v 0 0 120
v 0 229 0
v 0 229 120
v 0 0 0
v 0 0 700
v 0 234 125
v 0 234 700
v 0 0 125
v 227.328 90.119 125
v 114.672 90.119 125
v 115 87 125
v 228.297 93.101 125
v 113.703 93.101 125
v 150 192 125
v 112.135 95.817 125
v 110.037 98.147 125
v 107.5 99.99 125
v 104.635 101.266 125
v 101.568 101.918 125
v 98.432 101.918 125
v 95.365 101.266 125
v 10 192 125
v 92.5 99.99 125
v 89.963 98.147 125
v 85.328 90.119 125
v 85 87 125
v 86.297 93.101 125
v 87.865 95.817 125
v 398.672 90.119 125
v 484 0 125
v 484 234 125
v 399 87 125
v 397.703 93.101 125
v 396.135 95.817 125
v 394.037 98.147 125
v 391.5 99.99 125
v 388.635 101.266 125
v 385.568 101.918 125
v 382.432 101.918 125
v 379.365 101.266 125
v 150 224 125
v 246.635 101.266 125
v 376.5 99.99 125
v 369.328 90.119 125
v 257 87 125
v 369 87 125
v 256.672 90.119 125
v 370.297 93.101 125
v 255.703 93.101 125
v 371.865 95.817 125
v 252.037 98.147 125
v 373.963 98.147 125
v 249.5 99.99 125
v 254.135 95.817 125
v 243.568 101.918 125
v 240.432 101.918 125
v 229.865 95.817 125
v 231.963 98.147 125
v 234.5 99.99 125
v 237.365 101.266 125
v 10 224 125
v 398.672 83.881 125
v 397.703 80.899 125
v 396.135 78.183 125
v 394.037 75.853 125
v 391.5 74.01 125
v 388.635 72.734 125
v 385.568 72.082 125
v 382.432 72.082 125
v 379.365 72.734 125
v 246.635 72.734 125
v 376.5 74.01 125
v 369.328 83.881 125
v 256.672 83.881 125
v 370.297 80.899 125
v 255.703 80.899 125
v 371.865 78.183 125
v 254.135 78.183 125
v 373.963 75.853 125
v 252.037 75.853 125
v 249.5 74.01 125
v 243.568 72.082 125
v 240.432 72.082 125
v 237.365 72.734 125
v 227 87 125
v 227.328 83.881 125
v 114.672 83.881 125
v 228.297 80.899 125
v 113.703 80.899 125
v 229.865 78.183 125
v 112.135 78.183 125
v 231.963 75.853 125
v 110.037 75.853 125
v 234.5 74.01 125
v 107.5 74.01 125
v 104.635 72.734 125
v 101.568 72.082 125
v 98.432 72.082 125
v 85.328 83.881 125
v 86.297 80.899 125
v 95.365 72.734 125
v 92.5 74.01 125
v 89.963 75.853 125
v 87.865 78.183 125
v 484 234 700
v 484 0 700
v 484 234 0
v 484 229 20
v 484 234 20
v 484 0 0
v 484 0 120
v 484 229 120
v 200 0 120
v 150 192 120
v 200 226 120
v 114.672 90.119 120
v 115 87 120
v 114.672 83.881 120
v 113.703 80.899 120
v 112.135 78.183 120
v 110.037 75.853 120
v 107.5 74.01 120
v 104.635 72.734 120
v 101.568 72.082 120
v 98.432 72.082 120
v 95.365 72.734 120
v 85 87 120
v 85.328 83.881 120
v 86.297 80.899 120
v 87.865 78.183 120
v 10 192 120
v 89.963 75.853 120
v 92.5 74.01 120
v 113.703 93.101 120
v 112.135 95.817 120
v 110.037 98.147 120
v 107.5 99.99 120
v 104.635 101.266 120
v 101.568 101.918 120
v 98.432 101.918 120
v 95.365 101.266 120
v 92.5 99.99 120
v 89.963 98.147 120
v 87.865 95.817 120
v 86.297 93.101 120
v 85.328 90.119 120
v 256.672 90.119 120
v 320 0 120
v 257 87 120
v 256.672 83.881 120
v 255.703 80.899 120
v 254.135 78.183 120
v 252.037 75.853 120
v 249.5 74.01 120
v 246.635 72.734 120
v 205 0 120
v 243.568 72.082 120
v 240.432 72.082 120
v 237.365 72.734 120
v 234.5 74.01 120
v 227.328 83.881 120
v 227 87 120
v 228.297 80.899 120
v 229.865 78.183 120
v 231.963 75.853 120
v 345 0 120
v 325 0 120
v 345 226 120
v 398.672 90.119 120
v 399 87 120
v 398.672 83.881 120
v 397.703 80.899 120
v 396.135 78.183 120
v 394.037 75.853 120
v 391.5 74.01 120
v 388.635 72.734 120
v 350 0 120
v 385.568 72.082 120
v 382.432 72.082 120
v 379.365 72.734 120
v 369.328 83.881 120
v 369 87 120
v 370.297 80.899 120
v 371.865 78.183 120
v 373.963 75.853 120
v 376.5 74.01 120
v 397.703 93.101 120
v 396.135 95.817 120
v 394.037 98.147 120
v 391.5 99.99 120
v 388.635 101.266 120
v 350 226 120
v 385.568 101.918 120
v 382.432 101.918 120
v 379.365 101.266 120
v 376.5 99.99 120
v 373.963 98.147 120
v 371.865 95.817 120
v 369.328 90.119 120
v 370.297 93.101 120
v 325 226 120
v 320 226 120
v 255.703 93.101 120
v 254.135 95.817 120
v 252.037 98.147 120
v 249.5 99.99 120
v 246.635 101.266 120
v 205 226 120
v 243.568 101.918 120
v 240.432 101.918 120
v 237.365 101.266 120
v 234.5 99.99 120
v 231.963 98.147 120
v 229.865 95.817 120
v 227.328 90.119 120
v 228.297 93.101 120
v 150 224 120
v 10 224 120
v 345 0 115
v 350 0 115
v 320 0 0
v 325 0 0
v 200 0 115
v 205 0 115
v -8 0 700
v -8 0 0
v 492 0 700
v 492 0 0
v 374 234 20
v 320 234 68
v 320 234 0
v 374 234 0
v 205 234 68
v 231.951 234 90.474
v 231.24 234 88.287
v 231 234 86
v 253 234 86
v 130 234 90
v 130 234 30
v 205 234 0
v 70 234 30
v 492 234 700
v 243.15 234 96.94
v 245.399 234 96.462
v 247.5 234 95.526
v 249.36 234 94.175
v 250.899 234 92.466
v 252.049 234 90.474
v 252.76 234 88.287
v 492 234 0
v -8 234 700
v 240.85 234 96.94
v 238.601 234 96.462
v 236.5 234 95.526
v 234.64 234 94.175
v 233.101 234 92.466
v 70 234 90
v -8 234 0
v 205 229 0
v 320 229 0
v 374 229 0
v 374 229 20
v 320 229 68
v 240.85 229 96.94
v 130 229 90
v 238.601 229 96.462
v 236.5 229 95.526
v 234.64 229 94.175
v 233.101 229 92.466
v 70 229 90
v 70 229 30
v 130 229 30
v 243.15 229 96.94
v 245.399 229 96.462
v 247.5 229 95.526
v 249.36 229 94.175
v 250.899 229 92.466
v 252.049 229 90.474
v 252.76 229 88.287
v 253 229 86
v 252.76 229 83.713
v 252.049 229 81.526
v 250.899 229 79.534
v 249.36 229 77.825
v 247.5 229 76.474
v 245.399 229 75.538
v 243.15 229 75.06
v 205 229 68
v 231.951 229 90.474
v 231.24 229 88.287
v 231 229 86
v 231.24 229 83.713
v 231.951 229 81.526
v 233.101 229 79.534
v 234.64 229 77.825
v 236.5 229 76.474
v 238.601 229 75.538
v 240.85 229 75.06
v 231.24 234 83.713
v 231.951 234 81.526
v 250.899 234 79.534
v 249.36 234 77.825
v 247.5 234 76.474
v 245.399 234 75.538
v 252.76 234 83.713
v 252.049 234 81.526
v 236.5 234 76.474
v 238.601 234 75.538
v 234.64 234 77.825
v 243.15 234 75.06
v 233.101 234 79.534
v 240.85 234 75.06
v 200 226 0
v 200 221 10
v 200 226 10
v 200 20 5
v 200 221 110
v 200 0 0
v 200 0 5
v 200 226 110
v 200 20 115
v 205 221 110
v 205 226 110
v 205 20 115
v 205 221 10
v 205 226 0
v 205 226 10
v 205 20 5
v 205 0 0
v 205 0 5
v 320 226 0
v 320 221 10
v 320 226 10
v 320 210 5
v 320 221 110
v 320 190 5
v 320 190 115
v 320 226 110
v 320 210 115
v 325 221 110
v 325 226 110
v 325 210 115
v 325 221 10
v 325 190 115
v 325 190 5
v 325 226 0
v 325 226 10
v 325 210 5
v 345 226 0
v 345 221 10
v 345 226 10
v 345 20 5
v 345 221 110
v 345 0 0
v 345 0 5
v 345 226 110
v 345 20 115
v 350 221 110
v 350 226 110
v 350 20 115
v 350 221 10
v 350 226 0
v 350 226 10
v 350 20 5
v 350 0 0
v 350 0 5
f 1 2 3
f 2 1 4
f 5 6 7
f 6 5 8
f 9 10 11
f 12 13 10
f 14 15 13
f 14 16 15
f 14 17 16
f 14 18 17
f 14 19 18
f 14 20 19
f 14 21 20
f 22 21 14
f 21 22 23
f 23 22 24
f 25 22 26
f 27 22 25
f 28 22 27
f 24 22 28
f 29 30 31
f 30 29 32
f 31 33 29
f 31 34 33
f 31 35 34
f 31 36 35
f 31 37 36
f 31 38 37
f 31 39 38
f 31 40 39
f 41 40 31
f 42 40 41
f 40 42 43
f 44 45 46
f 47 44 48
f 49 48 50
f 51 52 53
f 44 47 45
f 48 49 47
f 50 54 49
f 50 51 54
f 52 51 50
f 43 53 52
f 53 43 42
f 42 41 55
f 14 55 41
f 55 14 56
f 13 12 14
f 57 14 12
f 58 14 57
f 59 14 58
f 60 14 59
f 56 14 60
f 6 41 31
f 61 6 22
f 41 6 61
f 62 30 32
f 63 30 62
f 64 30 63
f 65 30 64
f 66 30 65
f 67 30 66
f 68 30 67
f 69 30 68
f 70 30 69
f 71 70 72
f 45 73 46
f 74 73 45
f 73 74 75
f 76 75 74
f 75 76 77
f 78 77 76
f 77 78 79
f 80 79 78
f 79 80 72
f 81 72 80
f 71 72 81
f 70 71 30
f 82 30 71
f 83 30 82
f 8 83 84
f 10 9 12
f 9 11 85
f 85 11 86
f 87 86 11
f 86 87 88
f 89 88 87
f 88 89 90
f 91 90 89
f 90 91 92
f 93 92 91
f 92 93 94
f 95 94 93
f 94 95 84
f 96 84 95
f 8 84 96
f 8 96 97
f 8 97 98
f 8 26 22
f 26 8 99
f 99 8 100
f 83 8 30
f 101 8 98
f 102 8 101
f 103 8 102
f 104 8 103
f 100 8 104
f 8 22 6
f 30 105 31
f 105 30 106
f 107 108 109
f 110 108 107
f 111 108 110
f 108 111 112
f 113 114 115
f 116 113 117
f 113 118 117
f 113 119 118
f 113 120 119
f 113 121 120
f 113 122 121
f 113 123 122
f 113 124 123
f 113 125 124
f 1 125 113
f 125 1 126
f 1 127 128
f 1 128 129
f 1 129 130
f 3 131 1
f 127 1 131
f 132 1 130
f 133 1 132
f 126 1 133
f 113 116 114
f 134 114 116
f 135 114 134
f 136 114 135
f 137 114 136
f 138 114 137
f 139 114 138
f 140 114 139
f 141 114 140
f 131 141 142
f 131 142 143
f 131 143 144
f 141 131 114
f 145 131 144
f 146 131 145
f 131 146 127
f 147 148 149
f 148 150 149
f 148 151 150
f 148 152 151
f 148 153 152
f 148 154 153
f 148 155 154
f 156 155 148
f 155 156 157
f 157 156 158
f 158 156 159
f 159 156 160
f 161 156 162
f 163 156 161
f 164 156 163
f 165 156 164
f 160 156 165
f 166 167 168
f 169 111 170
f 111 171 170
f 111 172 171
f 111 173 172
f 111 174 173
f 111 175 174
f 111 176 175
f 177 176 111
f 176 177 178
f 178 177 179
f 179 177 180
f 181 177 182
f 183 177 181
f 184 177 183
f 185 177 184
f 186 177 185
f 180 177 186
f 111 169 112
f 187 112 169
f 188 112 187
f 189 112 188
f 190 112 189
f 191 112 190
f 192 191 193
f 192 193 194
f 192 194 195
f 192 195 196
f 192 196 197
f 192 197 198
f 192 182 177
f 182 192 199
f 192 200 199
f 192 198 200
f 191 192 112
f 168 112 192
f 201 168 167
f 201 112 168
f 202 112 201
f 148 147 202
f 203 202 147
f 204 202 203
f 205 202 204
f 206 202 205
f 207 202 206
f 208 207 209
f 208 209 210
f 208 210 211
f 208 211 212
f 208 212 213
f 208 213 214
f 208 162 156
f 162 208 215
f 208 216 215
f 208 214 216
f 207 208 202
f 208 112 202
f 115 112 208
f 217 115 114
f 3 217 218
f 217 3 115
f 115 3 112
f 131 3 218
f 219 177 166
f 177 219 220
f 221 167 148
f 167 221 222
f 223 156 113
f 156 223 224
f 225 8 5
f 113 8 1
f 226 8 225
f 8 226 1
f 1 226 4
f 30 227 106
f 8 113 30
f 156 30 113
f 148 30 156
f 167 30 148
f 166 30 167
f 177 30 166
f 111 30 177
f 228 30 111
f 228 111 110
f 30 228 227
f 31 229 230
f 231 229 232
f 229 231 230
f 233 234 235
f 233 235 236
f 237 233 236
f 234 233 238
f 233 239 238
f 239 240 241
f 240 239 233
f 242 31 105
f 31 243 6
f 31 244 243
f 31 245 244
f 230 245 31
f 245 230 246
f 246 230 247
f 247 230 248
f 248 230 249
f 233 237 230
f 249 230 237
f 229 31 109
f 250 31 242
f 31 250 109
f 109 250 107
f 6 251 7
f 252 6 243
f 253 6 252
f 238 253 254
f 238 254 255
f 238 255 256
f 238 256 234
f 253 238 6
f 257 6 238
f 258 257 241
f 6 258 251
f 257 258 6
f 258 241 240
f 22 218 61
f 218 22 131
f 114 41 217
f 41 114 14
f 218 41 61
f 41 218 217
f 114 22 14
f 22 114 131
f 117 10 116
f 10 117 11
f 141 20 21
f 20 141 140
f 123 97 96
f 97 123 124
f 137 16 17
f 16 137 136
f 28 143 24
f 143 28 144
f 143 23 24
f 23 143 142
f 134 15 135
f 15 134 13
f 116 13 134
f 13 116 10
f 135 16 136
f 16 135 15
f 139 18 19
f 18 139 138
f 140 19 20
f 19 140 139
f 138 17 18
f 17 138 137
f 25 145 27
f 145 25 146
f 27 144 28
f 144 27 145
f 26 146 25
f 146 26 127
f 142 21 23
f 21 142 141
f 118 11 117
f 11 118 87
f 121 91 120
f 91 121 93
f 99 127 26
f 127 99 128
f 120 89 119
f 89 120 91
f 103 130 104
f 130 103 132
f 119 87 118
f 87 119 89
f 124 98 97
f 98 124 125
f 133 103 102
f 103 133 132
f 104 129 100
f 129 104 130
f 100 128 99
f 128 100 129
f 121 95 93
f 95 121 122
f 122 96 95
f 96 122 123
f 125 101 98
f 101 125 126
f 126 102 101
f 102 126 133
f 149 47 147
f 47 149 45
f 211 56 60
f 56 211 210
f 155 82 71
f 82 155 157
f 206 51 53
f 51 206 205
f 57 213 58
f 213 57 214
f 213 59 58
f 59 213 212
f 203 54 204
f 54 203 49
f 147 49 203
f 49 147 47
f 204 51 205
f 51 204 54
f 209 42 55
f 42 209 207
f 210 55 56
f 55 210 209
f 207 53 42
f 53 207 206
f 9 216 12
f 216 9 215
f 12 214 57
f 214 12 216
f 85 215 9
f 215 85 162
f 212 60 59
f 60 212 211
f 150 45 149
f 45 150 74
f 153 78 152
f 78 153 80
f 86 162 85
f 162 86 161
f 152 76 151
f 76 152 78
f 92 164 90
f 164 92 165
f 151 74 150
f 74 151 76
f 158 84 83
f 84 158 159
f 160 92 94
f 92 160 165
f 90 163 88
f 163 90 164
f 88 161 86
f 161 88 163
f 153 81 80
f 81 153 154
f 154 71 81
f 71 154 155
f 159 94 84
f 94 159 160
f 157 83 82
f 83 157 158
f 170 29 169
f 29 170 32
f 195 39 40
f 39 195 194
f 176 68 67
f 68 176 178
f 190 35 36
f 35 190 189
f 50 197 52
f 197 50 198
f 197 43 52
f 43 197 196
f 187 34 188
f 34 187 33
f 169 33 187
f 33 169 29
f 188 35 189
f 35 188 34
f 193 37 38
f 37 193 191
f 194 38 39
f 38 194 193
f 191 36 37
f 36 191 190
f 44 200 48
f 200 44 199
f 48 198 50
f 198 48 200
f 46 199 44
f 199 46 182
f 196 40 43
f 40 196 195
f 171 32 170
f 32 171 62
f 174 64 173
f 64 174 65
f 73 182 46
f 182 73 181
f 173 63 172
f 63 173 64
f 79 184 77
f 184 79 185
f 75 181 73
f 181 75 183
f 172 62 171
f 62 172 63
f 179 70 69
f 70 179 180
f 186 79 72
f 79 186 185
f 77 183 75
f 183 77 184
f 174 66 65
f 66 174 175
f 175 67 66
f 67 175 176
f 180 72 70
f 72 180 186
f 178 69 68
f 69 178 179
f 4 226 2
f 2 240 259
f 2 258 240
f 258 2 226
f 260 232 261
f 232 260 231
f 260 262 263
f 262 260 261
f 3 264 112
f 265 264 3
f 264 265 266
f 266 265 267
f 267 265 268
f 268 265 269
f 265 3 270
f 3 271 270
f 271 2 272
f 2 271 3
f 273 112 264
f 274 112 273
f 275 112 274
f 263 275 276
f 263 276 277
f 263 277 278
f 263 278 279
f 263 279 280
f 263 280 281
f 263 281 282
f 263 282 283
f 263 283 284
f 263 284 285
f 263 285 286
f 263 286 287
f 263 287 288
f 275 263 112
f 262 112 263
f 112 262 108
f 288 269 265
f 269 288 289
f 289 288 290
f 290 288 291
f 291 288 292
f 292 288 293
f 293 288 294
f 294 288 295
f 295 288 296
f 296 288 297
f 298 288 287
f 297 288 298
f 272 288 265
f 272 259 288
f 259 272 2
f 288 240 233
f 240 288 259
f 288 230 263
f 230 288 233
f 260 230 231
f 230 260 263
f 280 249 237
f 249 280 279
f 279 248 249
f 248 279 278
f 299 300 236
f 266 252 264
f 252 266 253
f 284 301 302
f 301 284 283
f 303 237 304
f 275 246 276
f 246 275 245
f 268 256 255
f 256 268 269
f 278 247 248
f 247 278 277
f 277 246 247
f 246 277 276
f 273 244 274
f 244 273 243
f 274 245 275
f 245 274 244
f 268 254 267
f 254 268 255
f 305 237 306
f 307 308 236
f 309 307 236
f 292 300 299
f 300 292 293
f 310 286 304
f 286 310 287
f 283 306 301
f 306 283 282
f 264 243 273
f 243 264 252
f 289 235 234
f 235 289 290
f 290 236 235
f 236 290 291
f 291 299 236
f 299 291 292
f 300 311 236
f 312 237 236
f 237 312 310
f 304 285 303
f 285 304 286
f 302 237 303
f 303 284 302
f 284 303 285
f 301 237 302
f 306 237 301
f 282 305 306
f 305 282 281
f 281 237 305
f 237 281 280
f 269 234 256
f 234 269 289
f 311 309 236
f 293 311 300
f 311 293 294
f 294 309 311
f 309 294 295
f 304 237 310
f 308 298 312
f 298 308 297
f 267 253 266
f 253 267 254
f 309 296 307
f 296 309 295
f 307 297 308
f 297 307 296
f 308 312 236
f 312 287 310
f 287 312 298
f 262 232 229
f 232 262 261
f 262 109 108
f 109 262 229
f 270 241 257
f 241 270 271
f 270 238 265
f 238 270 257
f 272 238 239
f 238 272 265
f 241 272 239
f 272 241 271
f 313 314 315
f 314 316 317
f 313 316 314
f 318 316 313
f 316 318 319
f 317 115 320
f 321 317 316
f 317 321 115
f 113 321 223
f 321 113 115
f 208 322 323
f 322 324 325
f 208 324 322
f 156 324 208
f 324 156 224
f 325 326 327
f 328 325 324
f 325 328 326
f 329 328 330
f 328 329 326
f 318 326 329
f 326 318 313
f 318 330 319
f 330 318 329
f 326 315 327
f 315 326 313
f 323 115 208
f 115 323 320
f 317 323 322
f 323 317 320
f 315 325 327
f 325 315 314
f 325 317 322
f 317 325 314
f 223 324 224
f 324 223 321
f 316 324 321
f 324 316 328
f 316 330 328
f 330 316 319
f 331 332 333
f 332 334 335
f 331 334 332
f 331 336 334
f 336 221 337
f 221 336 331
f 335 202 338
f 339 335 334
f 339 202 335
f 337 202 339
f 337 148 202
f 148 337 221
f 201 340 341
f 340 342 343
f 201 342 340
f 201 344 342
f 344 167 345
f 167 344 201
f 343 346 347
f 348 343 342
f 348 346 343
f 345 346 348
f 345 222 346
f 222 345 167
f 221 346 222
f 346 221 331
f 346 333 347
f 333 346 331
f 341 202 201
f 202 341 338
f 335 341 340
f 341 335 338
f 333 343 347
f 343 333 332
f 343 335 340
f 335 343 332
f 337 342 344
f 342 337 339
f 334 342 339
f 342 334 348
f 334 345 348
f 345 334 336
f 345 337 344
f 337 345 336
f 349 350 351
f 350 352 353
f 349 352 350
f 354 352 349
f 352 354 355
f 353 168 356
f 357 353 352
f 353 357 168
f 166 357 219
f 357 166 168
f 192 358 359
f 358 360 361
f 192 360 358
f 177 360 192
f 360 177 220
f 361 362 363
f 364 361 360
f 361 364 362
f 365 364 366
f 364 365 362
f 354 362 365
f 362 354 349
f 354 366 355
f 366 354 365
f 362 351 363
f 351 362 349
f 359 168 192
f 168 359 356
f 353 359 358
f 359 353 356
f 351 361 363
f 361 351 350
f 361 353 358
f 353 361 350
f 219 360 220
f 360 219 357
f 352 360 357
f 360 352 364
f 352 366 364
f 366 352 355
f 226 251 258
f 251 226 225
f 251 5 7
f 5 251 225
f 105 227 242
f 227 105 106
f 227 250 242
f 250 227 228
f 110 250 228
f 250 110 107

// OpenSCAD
thickness=8;
width=120;
hight=234;
waterlevel=190;

baffle_hight=hight-thickness;
baffle_thickness=5;




// Aquarium outline
//left side
translate([-thickness,0,0]) color("Aqua", 0.2) cube([thickness, hight, 700]);
//back
//translate([-thickness,0, -thickness]) color("Aqua", 0.2) cube([500,hight,thickness]);
//right side
translate([484,0,0]) color("Aqua", 0.2) cube([thickness, hight, 700]);



// Baffles
// refugium baffle
translate([200, 0, 0]) underflow_baffle();

//Tunze Comline® DOC Skimmer 9001
//translate([205, waterlevel-135, 0]) skimmer_mockup();

// overflow baffle
translate([320, 0, 0]) overflow_baffle();
// bubble catch
translate([320+25, 0, 0]) underflow_baffle();

lid();


//probe holder
// FIXME Add holes
//probe_holder();

//front weir
front();


module lid(){
    translate([0,hight-baffle_thickness,0])
    color("black", 0.5) 
    difference(){
        //Lid solid
         cube([484, baffle_thickness, width]);
        
        // Skimmer cutout
        translate([200+baffle_thickness,0,0]) 
            cube([115,baffle_thickness,68]);
        //Finger hole
        translate([484/2, baffle_thickness, width - (68/2)]) 
            rotate([90,0,0]) cylinder(d=22,h=baffle_thickness*2);
        
        // probe cutout
        translate([484-110, 0, 0]) 
            cube([110, baffle_thickness, 20]);

        led_xy=60;
        // LED cutout
        translate([(200-led_xy)/2, 0, (width-led_xy)/2]) 
            cube([led_xy, baffle_thickness, led_xy]);
    }
    
/*    
    // Light block
    translate([baffle_thickness,hight-50-baffle_thickness,100]) 
        color("black") 
            cube([180,50,baffle_thickness]);
*/
}

module probe_holder(){
    length=120;
    translate([484-length, hight - baffle_thickness*2, 0])
        color("red") cube([length, baffle_thickness, 25]);
}

module skimmer_mockup(){
    color("YellowGreen", 0.1) cube([110,215,63]);
}

module front(){
    nozzle_hight=hight/2-30;
    color("grey")
    translate([0,0,width]){
        difference(){
             cube([484,hight,baffle_thickness]);
    
            translate([10,hight-32-10,0]){
                cube([140,32,baffle_thickness]);
            }
        
        
            color("red") 
                translate([100, nozzle_hight, -20 + baffle_thickness]) 
                    cylinder(h=23, d=30);
            
            color("red") 
                translate([484/2, nozzle_hight, -20 + baffle_thickness]) 
                    cylinder(h=23, d=30);
            
            color("red")
                translate([484-100, nozzle_hight, -20 + baffle_thickness]) 
                    cylinder(h=23, d=30);
        }
    }
}

module baffle(){
    color("black") 
    difference(){
        cube([baffle_thickness,baffle_hight,width]);
        translate([0,baffle_hight-5,10]) cube([baffle_thickness, 5, width-20]);
/*
        translate([0,35, width-25]) 
            rotate([0,90,0]) 
                cylinder(d=20, h=baffle_thickness);
*/
    }
        
}

module underflow_baffle(){
    difference(){
        baffle();
        translate([0,0,5]) color("black")  cube([baffle_thickness, 20, width-10]);
    }
}

module overflow_baffle(){
    difference(){
        baffle();
        translate([0,waterlevel,5]) color("black") cube([baffle_thickness, 20, width-10]);
    }
}
